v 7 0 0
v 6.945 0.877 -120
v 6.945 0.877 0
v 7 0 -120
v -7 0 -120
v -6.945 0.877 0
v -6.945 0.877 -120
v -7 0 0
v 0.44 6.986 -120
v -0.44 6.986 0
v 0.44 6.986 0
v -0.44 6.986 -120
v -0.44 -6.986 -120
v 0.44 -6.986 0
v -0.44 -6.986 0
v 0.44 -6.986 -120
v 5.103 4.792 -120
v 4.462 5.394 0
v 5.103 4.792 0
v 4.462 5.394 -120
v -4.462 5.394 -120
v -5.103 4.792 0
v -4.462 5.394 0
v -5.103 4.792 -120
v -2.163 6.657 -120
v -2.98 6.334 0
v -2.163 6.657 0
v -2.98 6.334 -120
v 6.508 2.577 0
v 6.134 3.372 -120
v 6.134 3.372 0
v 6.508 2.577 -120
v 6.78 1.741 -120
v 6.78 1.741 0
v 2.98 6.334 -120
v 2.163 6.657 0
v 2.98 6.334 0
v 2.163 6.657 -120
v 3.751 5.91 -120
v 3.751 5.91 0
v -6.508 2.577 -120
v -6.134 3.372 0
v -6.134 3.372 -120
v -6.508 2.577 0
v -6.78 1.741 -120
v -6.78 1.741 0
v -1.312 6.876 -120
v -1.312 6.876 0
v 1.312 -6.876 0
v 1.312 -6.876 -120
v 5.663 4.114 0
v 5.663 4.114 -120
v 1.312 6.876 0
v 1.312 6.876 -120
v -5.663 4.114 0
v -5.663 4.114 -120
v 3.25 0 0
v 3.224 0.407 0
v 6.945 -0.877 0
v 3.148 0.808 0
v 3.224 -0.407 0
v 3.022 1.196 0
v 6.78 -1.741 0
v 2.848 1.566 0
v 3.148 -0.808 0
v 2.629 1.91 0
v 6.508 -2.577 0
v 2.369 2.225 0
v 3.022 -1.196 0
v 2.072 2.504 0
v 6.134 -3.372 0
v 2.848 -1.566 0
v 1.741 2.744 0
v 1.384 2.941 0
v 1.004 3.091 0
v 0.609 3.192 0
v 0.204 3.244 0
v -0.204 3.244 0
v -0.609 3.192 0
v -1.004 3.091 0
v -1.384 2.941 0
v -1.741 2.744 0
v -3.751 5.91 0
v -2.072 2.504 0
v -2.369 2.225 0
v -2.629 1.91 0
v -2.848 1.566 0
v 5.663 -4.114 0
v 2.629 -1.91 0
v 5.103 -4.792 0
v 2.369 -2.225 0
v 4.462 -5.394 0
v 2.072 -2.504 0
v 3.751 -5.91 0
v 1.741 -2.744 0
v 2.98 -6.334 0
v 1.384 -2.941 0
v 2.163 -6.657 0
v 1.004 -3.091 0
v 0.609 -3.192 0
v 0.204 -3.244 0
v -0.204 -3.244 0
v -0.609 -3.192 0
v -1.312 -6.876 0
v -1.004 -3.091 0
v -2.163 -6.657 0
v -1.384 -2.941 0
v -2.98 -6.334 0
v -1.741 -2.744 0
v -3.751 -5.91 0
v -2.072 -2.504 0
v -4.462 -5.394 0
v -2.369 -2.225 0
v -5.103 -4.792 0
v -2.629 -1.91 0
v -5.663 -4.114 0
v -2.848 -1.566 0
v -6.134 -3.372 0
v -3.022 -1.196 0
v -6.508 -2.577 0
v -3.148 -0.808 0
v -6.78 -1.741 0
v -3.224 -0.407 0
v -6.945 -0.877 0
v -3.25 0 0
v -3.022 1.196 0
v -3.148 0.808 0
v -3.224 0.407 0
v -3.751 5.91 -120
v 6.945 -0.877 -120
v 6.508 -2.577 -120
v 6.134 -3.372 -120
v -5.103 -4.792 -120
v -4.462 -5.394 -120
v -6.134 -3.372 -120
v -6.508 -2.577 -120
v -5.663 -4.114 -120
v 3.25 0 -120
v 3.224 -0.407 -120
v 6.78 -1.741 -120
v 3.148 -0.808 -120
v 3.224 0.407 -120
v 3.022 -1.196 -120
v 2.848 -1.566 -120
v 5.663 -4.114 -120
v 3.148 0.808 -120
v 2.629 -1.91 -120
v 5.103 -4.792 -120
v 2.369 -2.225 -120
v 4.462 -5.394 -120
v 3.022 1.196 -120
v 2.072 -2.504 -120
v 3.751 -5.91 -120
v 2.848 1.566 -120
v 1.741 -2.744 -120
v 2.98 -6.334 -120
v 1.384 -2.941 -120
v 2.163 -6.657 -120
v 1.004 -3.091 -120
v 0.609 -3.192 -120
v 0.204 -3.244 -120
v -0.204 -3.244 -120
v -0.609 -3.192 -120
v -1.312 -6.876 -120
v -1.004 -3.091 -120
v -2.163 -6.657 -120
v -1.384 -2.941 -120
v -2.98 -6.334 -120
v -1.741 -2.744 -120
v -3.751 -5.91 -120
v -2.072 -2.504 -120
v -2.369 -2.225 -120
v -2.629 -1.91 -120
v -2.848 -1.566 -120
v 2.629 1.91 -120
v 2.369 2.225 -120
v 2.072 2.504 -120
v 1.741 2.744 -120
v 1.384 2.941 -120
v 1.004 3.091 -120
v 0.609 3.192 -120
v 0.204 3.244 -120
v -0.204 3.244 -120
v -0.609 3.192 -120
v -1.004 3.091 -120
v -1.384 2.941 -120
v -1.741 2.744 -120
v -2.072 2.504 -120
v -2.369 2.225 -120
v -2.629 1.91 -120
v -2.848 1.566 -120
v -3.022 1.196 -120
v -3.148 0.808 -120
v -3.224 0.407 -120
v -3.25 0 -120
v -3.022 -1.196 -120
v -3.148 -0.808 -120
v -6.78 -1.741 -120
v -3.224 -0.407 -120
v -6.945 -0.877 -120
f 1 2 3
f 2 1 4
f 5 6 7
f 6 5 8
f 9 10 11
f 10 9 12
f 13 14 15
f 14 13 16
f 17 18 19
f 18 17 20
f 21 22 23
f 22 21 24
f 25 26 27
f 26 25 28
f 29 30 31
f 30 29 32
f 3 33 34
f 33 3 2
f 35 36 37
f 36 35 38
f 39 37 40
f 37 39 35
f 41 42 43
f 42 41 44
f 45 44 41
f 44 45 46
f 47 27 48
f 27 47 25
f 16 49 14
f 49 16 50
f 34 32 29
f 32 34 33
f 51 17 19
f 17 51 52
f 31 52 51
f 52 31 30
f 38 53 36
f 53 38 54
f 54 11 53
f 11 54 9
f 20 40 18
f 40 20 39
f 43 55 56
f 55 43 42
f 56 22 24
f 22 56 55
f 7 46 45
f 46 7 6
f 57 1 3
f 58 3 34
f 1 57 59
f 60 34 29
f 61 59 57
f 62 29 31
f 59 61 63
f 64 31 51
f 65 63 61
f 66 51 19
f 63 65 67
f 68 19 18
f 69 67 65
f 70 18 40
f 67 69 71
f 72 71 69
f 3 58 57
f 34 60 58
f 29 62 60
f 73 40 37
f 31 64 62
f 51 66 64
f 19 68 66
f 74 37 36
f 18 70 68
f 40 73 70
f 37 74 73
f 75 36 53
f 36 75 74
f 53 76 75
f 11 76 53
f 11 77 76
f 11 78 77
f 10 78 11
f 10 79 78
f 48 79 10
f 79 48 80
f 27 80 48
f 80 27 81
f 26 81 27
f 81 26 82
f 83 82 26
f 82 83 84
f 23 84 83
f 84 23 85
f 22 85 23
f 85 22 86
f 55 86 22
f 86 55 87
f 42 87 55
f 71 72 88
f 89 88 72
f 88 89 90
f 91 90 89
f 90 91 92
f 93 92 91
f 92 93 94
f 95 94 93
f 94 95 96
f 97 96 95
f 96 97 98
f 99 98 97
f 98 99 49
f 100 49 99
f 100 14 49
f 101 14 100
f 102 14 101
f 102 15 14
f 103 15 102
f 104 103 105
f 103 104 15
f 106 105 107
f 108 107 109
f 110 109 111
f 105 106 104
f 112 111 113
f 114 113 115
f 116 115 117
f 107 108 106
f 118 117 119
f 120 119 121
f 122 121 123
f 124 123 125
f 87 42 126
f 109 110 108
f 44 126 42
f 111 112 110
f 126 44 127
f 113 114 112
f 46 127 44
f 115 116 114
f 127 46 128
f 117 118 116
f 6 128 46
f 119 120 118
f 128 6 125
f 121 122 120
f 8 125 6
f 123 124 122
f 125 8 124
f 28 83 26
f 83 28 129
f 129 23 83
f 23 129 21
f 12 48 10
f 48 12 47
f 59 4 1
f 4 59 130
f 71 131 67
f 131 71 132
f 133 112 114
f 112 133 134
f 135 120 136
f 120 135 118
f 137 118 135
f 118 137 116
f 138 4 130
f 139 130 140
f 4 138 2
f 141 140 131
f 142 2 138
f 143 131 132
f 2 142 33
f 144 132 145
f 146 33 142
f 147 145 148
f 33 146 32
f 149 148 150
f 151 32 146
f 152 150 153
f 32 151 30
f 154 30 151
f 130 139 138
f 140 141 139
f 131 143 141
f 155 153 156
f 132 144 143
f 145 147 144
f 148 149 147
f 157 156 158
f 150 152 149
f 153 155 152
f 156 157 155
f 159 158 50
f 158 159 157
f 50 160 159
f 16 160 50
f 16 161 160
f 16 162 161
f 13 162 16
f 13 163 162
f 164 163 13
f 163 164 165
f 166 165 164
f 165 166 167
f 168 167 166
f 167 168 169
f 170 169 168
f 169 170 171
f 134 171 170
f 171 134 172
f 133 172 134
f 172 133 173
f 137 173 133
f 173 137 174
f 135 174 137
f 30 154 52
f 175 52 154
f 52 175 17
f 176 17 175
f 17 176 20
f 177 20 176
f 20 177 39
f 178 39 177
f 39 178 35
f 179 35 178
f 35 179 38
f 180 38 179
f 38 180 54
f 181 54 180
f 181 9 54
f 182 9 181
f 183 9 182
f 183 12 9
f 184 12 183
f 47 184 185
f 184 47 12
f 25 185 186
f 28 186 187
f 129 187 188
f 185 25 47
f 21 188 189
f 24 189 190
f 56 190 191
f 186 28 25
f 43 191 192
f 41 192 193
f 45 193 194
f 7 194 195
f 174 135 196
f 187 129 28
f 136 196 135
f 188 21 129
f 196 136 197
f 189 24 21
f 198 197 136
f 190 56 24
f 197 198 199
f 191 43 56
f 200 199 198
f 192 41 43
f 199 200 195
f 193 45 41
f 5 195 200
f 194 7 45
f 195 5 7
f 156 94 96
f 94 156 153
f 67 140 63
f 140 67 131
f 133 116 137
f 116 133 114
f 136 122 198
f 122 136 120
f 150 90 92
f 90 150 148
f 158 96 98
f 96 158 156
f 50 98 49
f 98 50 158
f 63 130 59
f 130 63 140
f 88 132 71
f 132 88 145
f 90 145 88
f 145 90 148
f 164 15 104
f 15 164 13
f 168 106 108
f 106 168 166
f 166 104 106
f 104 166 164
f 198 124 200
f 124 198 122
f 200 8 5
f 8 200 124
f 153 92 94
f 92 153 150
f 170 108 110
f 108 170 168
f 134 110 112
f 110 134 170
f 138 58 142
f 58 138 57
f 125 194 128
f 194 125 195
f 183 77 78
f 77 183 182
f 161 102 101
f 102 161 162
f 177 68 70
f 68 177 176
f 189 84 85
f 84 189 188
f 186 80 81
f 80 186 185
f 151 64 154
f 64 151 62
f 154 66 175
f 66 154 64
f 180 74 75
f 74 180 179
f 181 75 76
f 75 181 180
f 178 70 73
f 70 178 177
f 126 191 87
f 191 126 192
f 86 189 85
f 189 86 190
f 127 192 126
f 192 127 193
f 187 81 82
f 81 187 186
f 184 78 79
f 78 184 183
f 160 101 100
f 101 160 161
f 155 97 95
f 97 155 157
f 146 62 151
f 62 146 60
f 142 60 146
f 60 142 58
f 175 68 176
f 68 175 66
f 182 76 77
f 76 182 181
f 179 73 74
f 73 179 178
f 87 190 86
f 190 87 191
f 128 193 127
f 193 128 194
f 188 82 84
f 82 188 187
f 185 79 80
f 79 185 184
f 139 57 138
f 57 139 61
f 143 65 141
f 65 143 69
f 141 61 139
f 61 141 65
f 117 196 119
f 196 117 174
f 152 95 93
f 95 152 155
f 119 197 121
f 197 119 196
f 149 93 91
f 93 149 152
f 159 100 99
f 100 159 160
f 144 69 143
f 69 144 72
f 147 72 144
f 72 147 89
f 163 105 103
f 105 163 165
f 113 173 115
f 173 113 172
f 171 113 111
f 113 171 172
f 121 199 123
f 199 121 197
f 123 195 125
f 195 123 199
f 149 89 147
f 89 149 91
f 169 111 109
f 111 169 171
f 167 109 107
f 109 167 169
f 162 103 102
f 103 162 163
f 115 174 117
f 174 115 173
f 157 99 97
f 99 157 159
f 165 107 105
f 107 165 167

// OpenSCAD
$fn = 50;


difference() {
	union() {
		translate(v = [0, 0, -120.0000000000]) {
			cylinder(h = 120, r = 7.0000000000);
		}
		cylinder(h = 0, r = 10.0000000000);
	}
	union() {
		#translate(v = [0, 0, -120]) {
			cylinder(h = 120, r = 3.2500000000);
		}
	}
}
